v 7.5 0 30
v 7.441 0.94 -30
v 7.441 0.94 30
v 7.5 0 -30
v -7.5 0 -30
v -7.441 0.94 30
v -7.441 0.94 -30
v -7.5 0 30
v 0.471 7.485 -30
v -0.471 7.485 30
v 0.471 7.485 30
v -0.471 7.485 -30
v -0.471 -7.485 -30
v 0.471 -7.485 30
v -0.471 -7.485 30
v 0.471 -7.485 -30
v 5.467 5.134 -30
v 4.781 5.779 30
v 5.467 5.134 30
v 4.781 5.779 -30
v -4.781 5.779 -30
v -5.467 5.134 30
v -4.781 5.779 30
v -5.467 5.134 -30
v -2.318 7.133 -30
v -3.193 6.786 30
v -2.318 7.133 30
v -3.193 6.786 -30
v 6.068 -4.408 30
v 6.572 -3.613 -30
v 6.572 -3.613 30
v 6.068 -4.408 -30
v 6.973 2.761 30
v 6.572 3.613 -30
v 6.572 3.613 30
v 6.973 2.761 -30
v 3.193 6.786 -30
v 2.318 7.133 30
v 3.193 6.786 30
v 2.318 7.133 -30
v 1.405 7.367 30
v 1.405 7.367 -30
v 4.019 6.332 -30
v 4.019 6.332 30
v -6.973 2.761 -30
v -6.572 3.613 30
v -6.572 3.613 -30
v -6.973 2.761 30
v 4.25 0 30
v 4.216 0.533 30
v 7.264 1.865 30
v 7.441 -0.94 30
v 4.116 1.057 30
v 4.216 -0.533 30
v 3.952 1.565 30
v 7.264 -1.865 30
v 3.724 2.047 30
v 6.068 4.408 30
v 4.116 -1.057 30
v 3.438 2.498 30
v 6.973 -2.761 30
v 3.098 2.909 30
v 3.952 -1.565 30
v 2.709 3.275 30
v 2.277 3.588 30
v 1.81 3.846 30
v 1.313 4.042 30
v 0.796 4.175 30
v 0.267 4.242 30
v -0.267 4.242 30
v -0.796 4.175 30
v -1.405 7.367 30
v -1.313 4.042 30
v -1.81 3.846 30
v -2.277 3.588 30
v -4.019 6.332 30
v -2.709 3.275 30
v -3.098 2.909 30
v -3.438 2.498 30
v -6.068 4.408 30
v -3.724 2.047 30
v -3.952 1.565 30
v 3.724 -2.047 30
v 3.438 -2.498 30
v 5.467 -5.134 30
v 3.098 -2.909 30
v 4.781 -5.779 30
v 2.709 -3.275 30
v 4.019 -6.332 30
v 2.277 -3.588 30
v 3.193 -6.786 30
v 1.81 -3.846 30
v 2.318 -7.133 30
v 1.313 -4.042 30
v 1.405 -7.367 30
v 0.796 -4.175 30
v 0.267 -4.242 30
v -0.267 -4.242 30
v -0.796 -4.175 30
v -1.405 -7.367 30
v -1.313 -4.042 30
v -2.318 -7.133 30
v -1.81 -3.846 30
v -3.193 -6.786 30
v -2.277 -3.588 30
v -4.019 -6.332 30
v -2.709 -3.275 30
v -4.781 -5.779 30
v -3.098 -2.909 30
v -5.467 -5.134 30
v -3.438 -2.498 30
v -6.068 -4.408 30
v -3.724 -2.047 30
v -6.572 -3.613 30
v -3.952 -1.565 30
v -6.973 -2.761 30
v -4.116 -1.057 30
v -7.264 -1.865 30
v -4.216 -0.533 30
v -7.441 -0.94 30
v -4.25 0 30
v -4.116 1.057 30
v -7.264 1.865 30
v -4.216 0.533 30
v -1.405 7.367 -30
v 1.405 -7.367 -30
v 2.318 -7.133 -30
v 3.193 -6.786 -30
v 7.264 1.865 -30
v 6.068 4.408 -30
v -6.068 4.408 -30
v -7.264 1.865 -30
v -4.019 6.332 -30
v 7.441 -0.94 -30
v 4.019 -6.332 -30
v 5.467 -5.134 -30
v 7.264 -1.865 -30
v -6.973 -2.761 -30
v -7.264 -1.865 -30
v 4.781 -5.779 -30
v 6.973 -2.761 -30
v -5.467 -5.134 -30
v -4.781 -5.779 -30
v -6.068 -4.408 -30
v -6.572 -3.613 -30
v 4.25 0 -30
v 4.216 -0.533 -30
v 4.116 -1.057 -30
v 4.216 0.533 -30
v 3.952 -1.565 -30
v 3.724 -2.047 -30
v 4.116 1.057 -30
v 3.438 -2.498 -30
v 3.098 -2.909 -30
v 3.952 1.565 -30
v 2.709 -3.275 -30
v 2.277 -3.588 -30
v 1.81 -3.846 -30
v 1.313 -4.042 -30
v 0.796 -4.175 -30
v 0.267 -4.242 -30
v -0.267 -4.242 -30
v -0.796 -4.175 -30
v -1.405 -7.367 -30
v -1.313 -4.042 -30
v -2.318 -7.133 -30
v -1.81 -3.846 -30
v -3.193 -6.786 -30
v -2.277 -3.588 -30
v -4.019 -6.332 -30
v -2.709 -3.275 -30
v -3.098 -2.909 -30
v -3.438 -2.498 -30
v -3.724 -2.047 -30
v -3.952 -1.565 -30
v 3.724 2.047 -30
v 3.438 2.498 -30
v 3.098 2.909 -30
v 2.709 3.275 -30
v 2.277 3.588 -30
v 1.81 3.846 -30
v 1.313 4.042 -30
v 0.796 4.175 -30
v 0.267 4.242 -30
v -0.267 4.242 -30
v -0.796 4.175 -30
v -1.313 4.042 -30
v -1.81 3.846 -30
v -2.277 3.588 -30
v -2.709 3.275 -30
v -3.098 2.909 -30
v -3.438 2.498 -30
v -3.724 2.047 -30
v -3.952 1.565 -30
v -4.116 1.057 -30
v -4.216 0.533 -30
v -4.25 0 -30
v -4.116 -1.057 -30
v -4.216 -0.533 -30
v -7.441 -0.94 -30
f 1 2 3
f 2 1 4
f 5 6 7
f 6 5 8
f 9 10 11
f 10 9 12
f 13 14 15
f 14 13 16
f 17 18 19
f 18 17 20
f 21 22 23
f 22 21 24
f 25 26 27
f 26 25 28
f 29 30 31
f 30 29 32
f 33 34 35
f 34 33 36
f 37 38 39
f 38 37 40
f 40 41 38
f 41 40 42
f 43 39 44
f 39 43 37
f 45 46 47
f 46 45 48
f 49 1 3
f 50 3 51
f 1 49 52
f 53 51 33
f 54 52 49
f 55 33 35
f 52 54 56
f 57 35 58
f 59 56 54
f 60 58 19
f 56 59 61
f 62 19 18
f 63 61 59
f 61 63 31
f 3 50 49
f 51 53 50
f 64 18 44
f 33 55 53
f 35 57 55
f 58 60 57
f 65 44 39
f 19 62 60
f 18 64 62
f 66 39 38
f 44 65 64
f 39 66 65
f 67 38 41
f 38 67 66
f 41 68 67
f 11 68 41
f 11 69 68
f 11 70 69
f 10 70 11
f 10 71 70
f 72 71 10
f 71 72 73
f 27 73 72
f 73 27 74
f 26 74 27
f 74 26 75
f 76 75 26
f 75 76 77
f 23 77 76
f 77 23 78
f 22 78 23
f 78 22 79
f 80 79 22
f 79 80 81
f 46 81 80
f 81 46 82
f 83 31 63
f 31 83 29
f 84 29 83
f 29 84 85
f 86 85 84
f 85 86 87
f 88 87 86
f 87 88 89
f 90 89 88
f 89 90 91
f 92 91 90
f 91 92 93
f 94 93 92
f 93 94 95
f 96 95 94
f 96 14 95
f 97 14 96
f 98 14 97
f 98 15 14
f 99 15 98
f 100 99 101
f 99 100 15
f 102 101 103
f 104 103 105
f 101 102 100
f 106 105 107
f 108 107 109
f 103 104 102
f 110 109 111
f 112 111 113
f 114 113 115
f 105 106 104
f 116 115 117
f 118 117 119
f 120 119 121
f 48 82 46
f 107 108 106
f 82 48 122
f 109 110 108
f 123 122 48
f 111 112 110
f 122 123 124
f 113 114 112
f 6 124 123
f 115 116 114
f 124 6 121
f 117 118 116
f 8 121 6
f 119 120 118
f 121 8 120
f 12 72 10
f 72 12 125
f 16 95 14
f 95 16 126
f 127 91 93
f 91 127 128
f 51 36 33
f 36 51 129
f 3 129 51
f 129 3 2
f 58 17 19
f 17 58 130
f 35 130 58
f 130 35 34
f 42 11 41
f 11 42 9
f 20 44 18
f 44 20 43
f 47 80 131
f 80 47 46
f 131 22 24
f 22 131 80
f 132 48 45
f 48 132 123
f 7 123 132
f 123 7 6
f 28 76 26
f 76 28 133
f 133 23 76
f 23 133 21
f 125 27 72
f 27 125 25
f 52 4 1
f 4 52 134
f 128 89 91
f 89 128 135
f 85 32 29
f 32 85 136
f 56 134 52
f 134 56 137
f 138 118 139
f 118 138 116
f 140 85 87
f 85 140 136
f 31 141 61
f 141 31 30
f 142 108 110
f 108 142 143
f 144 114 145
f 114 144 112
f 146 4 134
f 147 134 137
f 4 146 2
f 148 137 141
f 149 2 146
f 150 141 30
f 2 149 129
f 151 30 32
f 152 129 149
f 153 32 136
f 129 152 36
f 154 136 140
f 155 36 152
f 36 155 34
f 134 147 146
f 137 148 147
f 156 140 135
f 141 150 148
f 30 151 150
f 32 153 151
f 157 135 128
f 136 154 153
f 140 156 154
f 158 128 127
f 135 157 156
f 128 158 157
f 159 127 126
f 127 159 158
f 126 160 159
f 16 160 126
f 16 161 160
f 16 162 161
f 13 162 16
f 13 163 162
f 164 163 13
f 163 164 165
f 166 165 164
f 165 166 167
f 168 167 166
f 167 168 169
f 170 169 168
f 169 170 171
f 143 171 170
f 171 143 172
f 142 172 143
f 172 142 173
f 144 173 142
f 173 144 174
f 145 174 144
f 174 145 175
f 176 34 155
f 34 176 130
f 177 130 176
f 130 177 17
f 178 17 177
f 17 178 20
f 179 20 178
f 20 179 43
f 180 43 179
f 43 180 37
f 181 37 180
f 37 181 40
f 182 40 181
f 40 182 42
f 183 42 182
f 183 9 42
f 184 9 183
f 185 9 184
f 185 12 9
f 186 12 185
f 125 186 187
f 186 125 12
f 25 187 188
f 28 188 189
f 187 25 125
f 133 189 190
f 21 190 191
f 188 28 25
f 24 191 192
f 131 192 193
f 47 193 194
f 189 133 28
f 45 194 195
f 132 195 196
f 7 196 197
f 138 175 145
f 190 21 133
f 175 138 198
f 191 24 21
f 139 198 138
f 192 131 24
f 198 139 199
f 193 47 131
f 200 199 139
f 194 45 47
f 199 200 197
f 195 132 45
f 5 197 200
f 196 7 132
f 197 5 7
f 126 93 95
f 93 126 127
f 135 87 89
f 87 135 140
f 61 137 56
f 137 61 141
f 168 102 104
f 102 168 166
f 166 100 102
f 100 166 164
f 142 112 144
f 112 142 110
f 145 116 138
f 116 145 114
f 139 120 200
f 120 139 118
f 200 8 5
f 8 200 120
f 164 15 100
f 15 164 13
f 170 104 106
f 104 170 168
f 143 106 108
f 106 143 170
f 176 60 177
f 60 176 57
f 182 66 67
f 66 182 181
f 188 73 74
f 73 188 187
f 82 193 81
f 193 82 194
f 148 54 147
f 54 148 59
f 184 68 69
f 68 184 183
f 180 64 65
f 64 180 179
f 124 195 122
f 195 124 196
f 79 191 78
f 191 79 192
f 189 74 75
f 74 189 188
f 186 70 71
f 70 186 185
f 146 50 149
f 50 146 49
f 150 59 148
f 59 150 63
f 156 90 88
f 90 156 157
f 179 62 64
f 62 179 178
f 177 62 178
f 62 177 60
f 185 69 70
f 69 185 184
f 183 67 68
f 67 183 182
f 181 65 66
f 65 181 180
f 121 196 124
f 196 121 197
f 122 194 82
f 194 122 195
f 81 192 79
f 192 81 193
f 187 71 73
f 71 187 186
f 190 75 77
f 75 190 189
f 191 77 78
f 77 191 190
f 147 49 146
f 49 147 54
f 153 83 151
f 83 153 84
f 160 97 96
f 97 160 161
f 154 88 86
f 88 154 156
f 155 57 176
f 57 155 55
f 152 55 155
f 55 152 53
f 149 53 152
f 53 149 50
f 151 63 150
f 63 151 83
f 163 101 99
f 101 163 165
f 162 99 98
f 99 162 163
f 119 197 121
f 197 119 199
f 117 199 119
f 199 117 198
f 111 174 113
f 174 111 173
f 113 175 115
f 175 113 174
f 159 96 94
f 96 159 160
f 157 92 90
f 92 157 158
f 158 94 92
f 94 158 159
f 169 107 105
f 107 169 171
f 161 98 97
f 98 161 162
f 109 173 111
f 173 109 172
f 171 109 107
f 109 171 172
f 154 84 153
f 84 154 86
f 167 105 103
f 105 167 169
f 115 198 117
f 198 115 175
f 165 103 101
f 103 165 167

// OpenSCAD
$fn = 50;


difference() {
	union() {
		translate(v = [0, 0, -30.0000000000]) {
			cylinder(h = 60, r = 7.5000000000);
		}
	}
	union() {
		translate(v = [0, 0, -100.0000000000]) {
			cylinder(h = 200, r = 4.2500000000);
		}
	}
}
